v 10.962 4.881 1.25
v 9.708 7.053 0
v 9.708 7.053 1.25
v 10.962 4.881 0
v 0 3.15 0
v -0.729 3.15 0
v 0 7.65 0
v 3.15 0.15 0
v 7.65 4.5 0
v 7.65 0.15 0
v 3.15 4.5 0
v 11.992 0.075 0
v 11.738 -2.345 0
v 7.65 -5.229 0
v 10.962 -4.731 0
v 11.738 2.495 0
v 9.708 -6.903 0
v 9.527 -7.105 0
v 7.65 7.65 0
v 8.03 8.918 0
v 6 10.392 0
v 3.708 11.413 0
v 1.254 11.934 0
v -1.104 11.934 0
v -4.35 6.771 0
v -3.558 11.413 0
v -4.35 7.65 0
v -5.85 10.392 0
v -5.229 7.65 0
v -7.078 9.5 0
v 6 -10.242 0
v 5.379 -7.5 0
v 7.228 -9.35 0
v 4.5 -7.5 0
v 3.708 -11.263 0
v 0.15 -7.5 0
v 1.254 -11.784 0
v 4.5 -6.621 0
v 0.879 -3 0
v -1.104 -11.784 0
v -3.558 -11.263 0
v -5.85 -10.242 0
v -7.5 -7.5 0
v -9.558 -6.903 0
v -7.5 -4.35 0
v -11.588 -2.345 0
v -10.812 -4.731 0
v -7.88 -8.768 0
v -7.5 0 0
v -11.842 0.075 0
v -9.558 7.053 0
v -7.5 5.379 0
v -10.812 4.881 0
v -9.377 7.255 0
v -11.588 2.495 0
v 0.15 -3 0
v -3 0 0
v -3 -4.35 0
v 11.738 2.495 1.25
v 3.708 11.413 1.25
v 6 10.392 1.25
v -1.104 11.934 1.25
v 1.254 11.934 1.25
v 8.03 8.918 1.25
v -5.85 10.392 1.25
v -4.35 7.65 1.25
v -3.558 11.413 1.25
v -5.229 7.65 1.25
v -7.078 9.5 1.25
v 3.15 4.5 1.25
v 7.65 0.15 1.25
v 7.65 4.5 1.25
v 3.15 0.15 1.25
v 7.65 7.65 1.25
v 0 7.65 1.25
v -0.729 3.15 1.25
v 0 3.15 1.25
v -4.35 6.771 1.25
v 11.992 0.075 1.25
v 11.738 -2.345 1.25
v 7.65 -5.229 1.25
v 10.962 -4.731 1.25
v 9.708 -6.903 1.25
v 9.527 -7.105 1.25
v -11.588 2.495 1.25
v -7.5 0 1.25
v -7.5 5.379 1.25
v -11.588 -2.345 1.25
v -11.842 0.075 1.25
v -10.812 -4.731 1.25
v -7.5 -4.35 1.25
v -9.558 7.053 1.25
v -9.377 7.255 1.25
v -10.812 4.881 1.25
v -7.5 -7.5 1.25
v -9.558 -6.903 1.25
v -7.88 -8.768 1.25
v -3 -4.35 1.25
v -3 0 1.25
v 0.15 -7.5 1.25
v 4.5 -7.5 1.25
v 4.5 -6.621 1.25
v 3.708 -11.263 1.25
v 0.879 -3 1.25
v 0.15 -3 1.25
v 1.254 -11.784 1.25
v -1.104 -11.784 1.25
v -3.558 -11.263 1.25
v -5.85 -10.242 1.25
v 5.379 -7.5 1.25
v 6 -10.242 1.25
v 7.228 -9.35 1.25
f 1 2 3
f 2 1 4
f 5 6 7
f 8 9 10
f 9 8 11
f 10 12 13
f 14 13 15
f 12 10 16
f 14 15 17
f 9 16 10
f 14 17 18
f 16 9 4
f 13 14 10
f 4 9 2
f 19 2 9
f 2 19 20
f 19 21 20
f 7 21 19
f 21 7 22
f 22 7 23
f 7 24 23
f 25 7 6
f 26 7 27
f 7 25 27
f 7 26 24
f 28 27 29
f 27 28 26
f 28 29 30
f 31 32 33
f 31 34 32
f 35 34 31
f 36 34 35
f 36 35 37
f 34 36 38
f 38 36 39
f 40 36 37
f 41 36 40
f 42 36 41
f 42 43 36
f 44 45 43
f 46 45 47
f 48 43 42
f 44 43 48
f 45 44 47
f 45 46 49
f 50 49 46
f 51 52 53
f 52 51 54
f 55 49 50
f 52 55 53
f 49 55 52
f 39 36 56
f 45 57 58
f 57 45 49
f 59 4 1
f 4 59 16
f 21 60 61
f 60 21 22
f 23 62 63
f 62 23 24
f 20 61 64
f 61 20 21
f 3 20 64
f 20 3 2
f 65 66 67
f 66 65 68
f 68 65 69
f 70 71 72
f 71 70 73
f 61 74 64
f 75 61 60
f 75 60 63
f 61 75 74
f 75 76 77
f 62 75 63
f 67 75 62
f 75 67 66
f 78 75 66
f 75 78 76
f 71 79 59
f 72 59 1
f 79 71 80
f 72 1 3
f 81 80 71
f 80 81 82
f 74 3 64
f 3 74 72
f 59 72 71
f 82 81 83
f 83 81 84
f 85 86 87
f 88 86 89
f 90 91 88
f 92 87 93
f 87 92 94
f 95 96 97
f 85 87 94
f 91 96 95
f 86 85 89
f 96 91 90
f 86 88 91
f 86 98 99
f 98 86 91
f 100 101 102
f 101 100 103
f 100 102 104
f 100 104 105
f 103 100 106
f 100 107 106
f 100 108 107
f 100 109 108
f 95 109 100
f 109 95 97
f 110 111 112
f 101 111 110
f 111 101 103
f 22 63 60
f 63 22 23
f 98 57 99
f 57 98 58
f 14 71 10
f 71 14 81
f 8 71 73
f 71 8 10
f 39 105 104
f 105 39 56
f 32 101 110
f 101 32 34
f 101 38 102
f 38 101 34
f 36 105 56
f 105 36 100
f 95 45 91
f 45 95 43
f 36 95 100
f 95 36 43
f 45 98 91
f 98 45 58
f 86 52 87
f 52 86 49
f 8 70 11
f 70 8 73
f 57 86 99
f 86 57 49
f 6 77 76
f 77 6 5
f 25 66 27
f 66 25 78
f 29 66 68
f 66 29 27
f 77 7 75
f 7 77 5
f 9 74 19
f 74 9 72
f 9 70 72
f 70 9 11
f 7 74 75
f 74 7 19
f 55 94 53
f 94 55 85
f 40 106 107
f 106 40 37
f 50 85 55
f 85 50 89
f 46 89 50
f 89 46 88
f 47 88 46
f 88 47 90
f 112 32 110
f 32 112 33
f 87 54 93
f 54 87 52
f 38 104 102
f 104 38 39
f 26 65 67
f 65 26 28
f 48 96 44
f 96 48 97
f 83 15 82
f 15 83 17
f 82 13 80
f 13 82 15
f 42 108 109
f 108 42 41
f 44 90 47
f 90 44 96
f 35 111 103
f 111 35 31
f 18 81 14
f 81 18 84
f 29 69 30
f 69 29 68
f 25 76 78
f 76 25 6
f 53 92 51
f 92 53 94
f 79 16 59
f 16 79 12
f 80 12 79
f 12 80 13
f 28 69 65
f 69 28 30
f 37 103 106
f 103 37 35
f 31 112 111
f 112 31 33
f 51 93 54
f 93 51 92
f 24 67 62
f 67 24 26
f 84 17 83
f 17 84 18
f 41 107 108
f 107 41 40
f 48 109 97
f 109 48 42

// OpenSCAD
difference() {
	cylinder(h = 1.25, r = 12.0);
	minkowski() {
		union() {
			cube(size = [3.0, 7.5, 2.5]);
			translate(v = [0, 4.5, 0]) {
				cube(size = [7.5, 3.0, 2.5]);
			}
			rotate(a = [0, 0, 90]) {
				union() {
					cube(size = [3.0, 7.5, 2.5]);
					translate(v = [0, 4.5, 0]) {
						cube(size = [7.5, 3.0, 2.5]);
					}
				}
			}
			rotate(a = [0, 0, 180]) {
				union() {
					cube(size = [3.0, 7.5, 2.5]);
					translate(v = [0, 4.5, 0]) {
						cube(size = [7.5, 3.0, 2.5]);
					}
				}
			}
			rotate(a = [0, 0, 270]) {
				union() {
					cube(size = [3.0, 7.5, 2.5]);
					translate(v = [0, 4.5, 0]) {
						cube(size = [7.5, 3.0, 2.5]);
					}
				}
			}
		}
		cube(size = [0.15, 0.15, 0.15]);
	}
	minkowski() {
		union() {
			difference() {
				cylinder(h = 2.5, r = 15.0);
				cylinder(h = 2.5, r = 12.0);
			}
			rotate(a = [0, 0, -45]) {
				translate(v = [-13.5, 0, 0]) {
					translate(v = [0, -1.5, 0]) {
						cube(size = [27.0, 3.0, 2.5]);
					}
				}
			}
		}
		cube(size = [0.15, 0.15, 0.15]);
	}
}
